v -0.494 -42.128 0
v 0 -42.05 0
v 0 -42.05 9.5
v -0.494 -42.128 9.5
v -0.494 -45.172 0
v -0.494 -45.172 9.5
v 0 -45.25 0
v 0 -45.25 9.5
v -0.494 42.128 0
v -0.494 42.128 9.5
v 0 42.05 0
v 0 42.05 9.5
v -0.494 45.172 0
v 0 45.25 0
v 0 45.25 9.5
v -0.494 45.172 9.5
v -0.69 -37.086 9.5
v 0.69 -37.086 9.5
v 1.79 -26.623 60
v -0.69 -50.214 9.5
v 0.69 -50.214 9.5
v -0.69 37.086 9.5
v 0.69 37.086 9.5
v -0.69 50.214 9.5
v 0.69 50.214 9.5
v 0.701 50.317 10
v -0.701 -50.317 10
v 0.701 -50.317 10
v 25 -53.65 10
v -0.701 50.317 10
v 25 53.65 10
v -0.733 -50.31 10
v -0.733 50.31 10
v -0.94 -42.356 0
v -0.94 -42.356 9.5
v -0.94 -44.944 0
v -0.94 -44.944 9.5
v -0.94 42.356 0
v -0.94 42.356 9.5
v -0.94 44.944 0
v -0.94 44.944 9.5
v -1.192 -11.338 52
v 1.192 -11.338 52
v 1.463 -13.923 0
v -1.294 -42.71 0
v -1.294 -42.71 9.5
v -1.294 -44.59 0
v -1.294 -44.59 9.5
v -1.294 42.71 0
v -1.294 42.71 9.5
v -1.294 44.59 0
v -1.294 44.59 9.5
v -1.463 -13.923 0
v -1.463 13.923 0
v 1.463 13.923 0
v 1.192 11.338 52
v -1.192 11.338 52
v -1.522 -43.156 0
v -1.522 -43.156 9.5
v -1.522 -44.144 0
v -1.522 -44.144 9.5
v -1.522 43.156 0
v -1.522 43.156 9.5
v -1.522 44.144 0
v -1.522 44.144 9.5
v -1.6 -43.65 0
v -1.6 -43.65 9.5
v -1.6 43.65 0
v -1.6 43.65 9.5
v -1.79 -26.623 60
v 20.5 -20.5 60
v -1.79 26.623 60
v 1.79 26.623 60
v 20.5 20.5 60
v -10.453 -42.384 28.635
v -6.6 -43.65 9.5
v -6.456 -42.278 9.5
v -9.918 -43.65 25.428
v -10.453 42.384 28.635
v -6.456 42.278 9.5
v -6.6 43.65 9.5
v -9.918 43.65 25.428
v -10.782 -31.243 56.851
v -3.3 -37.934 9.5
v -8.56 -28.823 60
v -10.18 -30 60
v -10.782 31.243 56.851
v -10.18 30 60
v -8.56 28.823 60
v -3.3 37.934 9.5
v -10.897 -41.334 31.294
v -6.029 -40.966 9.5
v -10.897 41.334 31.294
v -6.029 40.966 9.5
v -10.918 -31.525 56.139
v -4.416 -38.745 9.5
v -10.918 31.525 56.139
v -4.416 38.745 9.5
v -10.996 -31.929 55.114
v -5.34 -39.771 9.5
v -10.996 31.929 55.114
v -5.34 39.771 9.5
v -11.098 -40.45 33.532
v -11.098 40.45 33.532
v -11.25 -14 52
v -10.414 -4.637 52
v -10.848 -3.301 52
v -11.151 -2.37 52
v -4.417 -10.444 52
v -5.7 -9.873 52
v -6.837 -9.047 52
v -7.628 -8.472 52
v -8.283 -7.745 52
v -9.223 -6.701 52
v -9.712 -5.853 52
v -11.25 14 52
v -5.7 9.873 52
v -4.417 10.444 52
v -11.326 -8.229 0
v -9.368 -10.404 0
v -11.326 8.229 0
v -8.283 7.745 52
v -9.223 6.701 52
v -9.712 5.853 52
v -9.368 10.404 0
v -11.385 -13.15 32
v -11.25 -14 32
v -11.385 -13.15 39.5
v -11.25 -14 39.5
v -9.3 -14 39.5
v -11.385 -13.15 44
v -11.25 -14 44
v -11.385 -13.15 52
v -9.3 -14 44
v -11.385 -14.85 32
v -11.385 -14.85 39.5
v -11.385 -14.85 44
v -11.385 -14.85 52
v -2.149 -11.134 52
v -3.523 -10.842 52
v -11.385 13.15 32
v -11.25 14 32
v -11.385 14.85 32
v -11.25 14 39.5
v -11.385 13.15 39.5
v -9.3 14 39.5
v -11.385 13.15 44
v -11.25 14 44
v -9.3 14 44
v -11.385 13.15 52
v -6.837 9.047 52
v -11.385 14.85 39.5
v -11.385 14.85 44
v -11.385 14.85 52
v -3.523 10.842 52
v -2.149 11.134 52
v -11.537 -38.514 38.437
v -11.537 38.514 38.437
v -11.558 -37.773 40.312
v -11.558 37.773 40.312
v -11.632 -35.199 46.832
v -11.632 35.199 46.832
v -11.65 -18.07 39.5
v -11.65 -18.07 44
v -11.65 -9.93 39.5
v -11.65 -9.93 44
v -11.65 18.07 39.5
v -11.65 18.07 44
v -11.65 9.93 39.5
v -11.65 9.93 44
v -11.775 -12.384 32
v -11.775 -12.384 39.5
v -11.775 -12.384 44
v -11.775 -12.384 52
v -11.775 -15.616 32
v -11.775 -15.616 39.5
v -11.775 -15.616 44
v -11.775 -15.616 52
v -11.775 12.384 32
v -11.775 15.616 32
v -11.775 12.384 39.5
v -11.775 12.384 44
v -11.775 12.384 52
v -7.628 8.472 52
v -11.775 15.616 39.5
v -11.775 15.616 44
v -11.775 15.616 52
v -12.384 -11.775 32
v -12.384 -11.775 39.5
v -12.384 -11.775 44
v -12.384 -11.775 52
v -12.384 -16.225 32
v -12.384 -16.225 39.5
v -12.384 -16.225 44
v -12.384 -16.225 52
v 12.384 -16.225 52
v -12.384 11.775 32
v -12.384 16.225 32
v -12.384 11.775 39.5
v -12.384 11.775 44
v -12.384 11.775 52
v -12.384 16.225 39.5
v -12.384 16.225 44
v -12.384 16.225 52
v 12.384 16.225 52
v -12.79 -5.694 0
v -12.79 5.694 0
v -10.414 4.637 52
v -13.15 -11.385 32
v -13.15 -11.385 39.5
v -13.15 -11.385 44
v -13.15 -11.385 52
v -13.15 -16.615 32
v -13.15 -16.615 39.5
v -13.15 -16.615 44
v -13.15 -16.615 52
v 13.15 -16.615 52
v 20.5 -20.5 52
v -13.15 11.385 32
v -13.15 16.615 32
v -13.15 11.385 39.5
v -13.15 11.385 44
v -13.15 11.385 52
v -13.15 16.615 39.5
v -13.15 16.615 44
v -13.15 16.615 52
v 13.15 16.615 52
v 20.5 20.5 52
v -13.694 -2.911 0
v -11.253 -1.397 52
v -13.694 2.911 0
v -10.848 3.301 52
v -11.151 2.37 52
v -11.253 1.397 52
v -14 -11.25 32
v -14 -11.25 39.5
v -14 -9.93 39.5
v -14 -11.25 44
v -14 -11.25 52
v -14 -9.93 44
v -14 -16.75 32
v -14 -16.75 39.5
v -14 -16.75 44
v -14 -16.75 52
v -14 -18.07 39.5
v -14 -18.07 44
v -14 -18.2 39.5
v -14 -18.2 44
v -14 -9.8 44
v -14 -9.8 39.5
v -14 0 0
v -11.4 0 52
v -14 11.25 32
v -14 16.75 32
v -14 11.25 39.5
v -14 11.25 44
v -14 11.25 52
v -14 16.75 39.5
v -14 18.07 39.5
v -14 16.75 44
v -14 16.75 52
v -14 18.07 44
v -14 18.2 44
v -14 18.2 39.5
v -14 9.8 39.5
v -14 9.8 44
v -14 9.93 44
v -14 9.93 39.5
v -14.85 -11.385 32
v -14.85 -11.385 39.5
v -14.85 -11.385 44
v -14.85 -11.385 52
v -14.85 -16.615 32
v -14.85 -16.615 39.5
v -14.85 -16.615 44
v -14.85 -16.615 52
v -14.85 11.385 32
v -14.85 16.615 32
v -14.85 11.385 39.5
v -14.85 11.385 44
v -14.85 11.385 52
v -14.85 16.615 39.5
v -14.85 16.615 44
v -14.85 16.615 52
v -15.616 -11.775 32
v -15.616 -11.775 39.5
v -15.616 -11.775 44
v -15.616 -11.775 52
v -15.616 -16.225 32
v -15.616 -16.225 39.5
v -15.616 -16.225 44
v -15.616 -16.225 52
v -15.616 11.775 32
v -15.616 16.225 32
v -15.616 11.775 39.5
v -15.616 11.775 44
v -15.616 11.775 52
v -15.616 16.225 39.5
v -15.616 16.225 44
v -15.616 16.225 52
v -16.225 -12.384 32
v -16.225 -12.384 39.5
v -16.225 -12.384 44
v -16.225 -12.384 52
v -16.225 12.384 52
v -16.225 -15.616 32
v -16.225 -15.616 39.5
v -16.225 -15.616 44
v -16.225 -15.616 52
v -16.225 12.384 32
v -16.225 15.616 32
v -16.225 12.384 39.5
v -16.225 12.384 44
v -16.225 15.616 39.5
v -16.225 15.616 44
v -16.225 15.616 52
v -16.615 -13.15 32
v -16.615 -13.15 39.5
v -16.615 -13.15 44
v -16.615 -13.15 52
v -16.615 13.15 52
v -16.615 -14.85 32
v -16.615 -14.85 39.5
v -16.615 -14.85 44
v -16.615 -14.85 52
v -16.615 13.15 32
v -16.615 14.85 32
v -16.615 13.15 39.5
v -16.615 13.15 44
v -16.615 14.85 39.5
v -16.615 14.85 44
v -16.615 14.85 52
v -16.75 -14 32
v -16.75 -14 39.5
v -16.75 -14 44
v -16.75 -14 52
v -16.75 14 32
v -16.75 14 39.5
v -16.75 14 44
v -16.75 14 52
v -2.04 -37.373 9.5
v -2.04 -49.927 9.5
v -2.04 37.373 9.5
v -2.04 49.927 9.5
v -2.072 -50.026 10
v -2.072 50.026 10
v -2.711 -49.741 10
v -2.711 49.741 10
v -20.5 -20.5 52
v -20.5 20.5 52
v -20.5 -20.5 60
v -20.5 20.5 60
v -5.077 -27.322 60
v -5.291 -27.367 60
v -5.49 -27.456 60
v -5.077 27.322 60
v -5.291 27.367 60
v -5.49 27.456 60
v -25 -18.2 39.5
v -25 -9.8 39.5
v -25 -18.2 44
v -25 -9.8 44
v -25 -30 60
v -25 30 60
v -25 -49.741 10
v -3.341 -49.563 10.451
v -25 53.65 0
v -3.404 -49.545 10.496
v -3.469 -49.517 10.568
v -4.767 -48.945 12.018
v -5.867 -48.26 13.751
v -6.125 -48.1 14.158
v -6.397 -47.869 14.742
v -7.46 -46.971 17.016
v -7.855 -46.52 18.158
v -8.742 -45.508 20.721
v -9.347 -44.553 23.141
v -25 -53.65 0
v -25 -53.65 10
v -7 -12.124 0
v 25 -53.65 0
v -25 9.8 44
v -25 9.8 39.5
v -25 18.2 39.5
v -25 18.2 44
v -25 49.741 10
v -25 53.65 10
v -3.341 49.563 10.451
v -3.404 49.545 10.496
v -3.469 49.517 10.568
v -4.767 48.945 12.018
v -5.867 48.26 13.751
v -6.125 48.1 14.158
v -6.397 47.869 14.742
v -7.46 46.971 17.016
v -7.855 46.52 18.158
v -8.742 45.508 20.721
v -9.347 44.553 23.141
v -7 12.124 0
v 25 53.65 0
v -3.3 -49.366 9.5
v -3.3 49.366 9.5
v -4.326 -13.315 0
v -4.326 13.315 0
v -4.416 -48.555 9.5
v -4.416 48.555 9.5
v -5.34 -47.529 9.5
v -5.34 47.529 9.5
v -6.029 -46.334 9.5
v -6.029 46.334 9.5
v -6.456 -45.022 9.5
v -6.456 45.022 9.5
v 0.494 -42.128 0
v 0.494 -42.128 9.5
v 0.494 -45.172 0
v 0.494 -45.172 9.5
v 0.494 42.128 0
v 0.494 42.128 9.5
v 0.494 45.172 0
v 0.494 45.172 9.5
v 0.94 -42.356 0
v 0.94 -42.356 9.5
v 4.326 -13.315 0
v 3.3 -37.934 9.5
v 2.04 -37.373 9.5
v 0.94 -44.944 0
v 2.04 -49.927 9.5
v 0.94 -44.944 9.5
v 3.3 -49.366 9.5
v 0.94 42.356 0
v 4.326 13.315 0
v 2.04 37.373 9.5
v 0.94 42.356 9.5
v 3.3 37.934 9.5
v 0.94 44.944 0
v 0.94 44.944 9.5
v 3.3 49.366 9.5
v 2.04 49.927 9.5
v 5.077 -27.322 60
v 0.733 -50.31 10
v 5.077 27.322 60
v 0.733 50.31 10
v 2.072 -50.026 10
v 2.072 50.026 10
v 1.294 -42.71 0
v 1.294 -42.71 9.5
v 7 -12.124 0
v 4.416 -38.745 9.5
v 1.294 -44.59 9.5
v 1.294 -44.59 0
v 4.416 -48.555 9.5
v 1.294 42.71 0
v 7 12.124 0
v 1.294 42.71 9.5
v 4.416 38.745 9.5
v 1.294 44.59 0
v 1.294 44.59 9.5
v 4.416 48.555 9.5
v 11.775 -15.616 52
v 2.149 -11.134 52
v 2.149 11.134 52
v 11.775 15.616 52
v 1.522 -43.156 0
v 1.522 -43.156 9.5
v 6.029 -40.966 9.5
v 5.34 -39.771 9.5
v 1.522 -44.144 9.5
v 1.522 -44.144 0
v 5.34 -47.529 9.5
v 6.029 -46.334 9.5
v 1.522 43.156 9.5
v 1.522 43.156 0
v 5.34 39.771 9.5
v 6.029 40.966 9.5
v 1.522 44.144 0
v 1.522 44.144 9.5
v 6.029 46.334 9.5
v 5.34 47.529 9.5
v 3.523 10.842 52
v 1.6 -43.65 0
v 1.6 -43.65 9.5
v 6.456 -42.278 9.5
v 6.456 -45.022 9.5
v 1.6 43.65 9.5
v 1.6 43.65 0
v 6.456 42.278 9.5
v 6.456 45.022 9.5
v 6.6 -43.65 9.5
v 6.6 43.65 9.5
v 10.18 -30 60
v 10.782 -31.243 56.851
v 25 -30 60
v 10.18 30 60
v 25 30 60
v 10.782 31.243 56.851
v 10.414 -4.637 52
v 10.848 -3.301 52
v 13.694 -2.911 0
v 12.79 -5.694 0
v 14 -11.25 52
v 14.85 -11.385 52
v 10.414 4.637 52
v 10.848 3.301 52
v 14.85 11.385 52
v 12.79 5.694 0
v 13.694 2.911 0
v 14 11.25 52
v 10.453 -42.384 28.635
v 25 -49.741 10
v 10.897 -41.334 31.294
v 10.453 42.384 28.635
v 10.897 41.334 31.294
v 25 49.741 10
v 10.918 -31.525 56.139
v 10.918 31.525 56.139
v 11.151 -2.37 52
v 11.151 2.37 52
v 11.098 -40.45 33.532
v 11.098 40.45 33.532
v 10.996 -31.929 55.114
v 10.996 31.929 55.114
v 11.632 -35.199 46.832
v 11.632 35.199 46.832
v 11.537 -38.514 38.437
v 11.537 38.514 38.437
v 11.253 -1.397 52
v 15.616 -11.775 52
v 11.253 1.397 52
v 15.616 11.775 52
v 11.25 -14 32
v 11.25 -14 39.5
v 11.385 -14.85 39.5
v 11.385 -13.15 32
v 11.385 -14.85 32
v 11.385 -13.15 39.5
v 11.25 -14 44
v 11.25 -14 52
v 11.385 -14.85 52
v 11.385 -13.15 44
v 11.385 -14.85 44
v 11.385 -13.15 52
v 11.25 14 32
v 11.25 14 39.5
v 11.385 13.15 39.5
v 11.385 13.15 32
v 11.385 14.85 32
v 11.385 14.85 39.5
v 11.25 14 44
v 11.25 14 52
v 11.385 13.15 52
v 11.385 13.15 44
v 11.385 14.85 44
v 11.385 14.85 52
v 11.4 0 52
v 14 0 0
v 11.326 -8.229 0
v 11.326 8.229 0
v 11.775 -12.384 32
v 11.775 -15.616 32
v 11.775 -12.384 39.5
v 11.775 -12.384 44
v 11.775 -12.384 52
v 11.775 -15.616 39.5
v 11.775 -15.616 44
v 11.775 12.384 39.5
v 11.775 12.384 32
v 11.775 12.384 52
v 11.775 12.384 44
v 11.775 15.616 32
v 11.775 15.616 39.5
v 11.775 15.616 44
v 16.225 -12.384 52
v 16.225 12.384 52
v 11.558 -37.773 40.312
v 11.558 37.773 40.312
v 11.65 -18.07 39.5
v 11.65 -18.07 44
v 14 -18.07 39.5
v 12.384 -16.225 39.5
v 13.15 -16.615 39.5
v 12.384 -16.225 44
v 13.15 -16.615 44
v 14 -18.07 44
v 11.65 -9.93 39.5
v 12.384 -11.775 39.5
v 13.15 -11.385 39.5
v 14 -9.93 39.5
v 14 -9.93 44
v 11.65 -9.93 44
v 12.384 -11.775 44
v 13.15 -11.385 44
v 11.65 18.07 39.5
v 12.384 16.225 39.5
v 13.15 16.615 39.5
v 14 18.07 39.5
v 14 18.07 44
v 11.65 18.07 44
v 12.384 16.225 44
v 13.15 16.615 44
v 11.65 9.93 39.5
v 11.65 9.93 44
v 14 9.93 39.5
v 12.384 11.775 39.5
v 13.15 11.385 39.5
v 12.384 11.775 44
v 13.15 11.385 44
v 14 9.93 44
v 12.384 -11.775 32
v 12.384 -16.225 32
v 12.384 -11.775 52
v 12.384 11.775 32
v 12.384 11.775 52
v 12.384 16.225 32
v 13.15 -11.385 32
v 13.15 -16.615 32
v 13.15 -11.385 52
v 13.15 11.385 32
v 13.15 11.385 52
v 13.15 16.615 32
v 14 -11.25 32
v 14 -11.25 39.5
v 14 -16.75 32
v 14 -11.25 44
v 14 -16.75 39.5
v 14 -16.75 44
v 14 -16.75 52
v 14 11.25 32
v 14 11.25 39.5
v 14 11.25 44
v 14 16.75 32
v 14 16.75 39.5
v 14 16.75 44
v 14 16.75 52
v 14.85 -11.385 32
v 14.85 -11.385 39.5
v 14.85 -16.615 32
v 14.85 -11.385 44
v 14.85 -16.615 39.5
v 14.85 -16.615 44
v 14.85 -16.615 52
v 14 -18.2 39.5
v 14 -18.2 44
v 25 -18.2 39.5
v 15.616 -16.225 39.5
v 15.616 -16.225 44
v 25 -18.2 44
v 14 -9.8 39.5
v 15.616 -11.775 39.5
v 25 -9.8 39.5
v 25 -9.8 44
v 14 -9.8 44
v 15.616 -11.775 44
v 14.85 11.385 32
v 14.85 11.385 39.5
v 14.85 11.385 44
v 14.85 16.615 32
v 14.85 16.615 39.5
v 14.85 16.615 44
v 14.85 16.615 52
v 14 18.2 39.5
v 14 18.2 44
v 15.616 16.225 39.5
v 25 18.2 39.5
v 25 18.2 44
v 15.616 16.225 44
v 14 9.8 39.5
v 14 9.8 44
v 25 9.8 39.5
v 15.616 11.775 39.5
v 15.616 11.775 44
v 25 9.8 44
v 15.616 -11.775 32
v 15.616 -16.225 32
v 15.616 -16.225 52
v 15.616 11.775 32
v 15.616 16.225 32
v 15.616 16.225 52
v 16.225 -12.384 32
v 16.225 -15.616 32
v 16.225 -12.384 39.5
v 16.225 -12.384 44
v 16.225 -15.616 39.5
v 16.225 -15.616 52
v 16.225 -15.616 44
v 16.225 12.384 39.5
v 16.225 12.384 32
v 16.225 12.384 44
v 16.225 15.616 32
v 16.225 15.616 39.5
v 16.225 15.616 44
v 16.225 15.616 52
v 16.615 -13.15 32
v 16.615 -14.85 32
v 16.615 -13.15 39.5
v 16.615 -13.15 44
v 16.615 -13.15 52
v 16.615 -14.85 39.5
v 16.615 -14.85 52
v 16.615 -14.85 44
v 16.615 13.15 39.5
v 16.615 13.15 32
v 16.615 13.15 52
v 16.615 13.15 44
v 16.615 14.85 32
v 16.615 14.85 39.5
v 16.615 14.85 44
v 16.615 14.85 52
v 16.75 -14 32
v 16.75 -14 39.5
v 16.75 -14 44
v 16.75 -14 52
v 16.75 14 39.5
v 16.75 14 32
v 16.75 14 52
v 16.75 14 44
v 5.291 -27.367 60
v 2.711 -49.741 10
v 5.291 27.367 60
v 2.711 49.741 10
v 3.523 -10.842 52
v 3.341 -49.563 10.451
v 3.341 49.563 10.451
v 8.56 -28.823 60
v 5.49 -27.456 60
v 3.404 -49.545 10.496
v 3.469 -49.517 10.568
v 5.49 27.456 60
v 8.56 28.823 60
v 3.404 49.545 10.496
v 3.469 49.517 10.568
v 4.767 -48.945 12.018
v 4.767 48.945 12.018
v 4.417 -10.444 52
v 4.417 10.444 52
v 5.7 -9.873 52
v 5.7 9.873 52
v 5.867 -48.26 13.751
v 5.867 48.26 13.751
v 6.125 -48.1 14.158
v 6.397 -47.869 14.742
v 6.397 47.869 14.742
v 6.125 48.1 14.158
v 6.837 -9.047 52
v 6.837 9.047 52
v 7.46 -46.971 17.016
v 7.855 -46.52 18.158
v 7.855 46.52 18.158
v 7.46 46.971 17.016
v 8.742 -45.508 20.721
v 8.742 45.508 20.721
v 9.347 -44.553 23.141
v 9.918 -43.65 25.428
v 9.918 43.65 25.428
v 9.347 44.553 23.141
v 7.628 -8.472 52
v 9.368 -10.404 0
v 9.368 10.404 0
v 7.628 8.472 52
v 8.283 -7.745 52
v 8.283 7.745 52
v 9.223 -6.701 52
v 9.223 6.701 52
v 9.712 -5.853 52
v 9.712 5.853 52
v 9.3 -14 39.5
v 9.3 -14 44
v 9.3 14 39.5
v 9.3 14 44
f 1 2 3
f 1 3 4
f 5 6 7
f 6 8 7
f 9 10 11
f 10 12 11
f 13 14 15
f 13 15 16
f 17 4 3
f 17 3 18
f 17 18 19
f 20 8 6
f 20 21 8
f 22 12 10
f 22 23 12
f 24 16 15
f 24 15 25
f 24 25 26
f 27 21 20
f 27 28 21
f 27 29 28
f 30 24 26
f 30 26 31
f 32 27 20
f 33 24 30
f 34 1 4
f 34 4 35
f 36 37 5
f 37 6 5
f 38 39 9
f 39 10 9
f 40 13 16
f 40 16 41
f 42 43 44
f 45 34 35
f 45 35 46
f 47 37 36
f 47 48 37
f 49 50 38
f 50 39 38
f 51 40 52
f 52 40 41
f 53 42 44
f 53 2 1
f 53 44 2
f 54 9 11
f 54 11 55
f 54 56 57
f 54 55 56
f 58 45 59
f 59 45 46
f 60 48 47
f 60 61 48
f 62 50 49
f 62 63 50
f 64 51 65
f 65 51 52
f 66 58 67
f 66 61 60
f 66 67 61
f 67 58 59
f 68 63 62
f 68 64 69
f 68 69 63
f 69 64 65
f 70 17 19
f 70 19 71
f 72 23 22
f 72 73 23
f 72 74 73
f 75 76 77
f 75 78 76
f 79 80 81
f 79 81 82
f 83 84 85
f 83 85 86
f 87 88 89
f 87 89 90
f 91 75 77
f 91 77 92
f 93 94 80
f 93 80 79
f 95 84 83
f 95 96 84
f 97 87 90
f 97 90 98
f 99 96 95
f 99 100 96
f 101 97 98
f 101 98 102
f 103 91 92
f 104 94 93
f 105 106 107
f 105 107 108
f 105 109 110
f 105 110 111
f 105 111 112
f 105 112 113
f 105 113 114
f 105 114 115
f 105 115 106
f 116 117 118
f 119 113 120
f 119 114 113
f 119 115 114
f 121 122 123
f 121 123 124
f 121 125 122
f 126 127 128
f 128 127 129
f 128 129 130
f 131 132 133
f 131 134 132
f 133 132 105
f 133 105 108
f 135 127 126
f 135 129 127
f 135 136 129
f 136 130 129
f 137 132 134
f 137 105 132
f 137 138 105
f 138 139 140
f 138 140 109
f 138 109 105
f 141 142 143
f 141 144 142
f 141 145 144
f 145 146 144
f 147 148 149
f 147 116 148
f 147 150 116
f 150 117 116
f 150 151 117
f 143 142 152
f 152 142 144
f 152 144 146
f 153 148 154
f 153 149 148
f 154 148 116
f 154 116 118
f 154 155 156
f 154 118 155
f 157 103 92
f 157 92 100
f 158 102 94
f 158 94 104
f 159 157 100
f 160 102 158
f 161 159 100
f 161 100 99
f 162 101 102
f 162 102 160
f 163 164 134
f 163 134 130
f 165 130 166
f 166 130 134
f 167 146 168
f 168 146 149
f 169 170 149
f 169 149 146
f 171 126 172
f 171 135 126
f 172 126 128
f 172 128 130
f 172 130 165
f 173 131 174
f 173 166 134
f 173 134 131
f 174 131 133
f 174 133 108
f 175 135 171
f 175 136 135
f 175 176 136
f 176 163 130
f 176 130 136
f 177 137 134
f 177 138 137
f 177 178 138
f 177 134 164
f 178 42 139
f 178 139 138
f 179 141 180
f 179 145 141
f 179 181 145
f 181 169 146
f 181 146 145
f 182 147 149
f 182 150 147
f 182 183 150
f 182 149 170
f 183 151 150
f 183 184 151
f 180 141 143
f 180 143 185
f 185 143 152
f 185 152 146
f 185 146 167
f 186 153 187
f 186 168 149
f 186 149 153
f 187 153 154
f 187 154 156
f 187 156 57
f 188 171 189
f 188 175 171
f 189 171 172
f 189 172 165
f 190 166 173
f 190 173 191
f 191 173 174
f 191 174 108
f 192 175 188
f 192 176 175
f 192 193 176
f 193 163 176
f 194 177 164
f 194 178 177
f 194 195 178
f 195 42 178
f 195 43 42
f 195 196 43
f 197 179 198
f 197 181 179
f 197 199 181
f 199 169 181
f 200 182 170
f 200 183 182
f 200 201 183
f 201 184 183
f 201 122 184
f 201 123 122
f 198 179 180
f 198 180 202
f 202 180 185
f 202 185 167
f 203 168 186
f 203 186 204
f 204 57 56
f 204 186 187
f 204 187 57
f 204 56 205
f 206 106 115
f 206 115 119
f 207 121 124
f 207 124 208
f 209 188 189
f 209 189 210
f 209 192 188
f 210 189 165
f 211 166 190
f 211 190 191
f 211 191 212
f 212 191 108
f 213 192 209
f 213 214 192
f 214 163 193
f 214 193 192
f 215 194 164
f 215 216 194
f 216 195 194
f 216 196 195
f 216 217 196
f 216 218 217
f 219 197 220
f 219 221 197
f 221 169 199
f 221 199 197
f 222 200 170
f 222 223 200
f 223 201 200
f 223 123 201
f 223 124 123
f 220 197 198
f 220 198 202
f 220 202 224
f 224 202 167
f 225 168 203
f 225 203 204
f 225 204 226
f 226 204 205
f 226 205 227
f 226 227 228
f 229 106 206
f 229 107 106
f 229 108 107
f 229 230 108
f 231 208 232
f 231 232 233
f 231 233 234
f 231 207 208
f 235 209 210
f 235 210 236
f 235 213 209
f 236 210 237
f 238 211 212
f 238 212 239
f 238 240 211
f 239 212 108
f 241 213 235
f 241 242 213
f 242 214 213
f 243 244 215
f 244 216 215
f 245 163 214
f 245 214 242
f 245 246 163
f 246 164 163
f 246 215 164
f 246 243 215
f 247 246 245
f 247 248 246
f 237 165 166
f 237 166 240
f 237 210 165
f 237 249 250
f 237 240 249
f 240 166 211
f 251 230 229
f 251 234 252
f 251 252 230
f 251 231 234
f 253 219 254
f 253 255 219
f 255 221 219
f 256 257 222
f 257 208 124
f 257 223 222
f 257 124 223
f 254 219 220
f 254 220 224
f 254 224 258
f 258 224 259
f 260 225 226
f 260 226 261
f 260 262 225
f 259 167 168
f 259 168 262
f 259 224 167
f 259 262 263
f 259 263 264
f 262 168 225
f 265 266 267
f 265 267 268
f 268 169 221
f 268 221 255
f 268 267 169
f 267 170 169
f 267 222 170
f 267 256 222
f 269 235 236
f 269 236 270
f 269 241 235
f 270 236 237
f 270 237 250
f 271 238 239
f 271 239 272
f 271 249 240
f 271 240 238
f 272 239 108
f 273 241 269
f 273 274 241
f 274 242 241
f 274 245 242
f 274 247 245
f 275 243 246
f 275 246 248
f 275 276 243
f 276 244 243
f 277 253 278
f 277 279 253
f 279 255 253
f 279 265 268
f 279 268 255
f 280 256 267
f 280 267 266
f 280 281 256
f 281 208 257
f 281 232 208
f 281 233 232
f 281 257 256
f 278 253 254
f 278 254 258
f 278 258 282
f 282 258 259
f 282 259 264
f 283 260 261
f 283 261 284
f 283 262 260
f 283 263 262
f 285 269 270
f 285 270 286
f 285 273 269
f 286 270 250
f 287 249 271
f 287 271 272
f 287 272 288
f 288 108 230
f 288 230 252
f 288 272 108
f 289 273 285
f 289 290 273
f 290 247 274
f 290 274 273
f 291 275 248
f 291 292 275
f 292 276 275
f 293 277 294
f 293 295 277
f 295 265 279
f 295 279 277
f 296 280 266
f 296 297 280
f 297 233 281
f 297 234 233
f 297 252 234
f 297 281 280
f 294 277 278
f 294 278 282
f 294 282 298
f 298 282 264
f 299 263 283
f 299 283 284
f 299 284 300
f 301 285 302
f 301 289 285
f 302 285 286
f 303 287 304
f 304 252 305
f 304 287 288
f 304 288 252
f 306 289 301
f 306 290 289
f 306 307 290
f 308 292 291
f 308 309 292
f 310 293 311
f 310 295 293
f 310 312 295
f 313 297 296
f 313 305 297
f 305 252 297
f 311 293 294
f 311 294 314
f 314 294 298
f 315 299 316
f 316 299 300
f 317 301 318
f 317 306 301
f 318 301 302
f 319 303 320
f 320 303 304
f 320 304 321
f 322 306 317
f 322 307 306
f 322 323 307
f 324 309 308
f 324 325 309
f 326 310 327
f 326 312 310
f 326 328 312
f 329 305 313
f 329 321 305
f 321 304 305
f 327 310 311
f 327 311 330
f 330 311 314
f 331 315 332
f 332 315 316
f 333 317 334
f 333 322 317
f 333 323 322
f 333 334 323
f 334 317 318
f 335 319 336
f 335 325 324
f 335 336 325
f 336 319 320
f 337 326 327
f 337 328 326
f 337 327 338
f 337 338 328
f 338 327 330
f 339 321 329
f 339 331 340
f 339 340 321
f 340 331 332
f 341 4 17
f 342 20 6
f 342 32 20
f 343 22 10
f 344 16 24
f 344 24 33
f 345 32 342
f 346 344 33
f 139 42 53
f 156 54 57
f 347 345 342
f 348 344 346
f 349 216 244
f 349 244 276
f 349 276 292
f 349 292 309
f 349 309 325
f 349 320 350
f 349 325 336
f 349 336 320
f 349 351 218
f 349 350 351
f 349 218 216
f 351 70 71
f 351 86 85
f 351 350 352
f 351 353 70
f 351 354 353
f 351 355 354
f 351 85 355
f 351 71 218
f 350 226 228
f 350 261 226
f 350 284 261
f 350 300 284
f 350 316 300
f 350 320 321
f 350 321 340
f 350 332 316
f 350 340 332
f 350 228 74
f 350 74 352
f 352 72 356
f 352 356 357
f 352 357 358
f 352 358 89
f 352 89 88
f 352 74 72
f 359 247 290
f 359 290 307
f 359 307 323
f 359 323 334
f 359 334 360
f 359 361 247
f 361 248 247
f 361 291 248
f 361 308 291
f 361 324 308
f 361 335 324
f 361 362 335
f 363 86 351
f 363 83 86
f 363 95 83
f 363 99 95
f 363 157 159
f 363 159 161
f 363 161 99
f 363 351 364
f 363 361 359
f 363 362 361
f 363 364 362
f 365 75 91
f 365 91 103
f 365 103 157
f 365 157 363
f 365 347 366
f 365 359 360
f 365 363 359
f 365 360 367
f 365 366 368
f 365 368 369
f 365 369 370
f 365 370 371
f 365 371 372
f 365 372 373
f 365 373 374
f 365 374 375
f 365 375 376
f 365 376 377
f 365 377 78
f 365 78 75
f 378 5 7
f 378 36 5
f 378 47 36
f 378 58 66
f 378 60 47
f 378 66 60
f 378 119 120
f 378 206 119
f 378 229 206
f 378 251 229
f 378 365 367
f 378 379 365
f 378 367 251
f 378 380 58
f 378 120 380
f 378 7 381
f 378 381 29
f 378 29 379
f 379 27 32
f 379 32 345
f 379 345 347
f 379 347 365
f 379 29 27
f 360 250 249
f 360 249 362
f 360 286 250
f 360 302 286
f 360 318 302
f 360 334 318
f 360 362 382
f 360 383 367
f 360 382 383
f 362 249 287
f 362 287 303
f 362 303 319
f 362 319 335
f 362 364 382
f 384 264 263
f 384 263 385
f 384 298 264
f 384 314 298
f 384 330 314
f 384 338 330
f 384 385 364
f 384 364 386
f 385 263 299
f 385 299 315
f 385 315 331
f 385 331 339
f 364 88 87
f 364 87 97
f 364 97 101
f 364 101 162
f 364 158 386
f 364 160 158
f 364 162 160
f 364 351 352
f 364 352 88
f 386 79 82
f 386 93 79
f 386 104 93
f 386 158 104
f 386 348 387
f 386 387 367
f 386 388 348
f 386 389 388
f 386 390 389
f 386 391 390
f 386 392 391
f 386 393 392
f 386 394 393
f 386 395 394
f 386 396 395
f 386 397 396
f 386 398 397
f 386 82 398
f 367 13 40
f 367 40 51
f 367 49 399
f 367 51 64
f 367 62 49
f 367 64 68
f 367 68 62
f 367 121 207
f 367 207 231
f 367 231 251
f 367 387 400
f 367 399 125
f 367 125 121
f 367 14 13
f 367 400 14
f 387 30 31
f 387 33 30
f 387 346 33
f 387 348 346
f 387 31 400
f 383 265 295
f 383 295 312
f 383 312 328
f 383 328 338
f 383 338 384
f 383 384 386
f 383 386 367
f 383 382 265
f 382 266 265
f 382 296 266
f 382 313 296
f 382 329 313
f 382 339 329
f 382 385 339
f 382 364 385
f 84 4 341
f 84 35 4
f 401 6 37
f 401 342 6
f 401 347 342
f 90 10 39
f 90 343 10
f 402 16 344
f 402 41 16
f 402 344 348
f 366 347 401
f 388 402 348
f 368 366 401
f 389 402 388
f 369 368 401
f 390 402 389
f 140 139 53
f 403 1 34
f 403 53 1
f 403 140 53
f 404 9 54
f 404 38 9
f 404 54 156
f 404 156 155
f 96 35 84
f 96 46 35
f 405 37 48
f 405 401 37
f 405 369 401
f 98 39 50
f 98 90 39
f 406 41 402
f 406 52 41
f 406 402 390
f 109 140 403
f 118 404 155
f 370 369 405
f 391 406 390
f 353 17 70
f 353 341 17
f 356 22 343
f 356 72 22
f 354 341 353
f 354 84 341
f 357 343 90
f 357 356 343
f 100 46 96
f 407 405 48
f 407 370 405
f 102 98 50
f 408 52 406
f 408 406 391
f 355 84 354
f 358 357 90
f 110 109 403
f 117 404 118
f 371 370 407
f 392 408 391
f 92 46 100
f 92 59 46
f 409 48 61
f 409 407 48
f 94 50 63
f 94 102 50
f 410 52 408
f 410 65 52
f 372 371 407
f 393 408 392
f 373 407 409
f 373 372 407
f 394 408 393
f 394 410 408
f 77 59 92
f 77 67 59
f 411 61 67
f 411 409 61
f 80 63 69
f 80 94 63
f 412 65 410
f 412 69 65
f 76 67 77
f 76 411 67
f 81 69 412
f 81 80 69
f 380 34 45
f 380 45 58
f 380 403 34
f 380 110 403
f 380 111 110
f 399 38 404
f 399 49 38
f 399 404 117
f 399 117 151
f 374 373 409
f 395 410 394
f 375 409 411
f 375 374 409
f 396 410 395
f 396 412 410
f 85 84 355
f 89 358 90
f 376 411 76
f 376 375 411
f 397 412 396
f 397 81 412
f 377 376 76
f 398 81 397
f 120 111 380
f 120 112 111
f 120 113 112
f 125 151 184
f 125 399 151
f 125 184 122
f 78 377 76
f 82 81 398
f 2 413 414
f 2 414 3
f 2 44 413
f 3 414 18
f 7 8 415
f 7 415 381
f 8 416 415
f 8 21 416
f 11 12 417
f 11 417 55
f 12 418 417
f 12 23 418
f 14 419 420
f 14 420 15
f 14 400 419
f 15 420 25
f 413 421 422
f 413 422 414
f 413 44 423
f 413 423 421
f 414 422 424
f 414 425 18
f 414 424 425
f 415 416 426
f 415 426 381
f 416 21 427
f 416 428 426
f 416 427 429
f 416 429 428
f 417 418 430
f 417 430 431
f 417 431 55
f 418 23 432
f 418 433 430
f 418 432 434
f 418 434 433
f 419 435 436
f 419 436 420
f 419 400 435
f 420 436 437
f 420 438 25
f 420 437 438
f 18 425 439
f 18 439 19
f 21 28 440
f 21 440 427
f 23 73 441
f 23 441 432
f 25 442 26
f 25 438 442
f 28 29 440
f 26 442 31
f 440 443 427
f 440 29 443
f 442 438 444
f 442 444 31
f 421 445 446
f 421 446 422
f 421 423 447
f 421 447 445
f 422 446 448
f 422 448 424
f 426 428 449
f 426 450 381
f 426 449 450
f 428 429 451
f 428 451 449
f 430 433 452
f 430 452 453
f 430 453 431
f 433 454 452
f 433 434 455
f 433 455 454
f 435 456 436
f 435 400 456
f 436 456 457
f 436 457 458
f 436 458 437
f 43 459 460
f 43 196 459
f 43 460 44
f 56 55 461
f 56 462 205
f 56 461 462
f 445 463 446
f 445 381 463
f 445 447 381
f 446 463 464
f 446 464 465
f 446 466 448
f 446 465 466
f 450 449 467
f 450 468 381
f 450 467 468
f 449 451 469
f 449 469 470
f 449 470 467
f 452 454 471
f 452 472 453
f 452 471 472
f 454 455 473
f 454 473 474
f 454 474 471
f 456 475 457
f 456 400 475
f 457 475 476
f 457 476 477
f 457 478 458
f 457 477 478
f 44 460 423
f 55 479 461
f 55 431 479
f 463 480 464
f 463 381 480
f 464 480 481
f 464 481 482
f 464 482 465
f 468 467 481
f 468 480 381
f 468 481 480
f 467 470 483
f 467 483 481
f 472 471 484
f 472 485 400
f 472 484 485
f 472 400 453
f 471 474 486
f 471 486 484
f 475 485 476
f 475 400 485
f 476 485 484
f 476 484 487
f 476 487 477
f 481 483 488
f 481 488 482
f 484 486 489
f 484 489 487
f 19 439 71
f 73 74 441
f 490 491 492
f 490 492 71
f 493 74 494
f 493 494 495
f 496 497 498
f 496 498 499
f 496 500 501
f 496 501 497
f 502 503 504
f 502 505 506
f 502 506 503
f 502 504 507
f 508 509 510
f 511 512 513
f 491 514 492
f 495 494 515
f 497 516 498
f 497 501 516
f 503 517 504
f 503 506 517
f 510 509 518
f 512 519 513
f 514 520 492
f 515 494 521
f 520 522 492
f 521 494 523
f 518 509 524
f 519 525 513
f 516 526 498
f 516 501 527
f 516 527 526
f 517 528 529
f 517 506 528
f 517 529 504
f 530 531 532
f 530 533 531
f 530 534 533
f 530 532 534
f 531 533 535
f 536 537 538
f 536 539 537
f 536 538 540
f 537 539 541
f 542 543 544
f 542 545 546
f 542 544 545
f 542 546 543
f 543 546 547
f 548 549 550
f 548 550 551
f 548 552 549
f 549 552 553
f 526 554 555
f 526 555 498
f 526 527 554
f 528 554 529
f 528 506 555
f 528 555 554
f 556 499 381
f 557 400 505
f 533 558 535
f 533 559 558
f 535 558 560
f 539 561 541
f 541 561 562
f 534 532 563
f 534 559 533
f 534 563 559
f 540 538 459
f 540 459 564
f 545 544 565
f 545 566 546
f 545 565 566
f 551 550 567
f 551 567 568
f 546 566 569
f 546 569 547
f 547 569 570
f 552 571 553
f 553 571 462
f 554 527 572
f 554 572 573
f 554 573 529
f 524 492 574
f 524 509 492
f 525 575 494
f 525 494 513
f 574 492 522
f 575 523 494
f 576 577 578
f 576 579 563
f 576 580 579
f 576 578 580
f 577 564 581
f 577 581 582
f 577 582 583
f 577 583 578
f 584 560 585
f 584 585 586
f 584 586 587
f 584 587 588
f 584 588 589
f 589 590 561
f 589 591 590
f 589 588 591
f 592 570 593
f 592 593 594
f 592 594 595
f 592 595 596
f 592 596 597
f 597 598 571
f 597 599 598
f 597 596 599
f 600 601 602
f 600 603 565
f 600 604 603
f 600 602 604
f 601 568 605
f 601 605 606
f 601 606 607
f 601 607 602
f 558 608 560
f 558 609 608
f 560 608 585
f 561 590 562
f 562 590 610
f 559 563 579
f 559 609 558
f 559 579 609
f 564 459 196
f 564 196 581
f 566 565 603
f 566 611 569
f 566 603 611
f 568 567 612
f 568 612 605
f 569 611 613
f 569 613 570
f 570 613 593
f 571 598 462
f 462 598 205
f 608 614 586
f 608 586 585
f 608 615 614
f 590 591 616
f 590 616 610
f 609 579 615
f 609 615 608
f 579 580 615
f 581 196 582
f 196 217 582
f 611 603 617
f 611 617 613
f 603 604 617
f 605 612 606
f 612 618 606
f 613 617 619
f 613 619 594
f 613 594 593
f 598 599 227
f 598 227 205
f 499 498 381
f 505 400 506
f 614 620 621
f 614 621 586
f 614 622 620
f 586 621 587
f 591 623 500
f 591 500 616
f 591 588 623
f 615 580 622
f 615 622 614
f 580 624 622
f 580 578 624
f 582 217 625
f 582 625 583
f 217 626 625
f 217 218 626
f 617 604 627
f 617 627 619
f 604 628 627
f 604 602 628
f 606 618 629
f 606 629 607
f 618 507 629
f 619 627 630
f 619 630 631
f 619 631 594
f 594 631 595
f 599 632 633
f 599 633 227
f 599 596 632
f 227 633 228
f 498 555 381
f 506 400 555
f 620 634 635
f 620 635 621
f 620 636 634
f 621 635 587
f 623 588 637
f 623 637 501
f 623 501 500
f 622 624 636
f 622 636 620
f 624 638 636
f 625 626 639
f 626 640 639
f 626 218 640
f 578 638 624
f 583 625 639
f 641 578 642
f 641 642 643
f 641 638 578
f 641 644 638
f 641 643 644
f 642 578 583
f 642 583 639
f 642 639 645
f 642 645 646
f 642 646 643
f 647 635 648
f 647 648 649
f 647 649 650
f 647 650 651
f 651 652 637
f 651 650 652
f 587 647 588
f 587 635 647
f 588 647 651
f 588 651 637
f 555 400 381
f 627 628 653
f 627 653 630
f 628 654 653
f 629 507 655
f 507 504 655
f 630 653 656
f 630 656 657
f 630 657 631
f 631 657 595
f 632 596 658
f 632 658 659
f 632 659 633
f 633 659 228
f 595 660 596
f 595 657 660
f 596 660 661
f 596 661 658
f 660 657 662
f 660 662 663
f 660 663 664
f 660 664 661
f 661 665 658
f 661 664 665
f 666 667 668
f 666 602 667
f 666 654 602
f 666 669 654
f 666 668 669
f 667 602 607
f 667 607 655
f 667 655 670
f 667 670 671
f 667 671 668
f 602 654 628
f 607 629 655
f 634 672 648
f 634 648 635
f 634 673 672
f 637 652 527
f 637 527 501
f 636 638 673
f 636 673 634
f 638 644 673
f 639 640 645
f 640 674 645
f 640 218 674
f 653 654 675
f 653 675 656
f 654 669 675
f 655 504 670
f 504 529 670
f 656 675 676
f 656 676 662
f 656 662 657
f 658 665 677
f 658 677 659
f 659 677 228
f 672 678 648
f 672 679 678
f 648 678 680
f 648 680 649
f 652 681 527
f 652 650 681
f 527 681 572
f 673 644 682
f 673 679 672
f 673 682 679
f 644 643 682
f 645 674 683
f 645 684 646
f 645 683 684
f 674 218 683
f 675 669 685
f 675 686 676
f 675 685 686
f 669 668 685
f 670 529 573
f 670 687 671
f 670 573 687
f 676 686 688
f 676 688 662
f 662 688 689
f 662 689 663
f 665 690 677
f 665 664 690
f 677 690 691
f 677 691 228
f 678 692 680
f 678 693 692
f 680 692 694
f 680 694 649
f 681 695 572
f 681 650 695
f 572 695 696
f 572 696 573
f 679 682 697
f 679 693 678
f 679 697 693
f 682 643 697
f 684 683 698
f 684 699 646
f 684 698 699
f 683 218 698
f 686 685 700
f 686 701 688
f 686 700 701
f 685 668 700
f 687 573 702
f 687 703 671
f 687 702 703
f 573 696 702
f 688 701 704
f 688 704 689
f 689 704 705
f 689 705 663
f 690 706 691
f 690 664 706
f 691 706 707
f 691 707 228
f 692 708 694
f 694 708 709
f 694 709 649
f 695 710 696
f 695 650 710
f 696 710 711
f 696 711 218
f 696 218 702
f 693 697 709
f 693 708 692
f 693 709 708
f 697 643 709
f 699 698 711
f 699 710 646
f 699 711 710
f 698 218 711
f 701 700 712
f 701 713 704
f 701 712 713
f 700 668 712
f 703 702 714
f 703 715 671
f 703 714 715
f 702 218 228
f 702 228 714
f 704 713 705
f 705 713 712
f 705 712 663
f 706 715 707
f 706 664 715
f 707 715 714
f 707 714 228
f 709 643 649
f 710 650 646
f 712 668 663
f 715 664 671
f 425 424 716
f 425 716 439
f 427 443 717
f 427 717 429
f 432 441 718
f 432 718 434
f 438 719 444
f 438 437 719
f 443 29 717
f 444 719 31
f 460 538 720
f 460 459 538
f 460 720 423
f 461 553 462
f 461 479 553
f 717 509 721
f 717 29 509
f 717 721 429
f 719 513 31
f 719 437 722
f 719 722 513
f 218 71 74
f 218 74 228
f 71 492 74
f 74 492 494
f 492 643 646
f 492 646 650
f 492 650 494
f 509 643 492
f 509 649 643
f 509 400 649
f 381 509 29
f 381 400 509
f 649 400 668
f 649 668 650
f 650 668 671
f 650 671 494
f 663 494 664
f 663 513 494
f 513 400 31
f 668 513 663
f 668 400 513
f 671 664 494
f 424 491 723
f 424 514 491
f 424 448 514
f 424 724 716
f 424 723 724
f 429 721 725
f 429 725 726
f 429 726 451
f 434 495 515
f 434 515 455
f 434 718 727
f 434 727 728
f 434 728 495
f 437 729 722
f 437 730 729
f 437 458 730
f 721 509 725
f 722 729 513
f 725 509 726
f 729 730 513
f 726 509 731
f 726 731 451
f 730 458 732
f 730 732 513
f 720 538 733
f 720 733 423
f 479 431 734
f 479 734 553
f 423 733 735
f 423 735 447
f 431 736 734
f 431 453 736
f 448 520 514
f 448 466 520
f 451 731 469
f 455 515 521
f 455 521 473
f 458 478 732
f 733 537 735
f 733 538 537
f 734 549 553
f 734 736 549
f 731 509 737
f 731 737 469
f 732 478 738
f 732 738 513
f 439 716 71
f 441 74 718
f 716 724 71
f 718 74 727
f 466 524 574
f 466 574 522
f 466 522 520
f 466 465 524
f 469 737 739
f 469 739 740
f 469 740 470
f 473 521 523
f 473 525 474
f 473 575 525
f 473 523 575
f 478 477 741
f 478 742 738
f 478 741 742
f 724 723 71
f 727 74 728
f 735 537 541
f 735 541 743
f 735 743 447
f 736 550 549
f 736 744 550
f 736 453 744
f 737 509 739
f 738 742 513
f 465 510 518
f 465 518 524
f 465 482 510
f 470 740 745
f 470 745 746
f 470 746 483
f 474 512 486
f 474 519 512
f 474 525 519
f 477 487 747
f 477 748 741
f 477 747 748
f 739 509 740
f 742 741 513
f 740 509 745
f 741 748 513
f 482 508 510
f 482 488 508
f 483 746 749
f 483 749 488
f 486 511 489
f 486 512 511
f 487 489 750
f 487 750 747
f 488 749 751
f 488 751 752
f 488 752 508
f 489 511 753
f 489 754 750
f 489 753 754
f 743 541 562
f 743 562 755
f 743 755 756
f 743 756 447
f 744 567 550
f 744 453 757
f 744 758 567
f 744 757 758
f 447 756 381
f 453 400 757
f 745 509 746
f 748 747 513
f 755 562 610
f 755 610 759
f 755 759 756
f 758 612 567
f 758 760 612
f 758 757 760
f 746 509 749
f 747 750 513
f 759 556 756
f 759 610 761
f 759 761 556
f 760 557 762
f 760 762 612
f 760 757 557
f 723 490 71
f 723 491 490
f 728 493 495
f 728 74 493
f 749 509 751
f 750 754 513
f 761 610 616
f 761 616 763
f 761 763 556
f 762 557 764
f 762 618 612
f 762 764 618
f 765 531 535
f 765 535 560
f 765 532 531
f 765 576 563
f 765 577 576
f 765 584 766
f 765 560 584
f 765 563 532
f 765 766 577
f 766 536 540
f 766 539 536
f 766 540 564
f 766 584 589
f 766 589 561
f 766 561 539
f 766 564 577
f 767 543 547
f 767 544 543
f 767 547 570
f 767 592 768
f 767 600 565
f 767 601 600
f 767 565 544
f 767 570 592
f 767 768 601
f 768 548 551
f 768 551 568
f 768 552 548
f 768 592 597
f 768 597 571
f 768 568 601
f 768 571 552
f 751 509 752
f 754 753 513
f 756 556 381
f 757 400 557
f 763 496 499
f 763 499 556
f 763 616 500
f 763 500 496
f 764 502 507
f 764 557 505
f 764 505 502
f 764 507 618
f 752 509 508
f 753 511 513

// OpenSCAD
include <../parameters.scad>

module 888_2008(draft = true){

    screw_length = 30;

    thickness = 50;
    width = height_of_accumulator*2 + 20;
    top_width = 60;
    height = 60;
    base_height = 10;

    screw_distance = 100;

    echo(str("desticka = ", main_tube_outer_diameter + thickness_between_tubes + coupling_wall_thickness ));

    difference(){
        union(){

            translate([-thickness/2, -width/2, 0])
                cube([thickness, width, base_height]);

            hull(){
                translate([-thickness/2, -width/2, 0])
                    cube([thickness, width, 0.1]);
                translate([-thickness/2, -top_width/2, 0])
                    cube([thickness, top_width, height]);
            }
        }

        for (i=[1,-1]) {
            translate([0, i*height_of_accumulator, 0])
                cylinder(d = M3_screw_diameter, h=base_height, $fn=20);
            translate([0, i*height_of_accumulator, base_height-global_clearance])
                cylinder(d1 = M3_screw_diameter+10, d2 = M3_screw_diameter+35, h=height);
        }

        // dira uprostred skrz
        translate([0, 0, 0])
            cylinder(d1=bearing_efsm_08_db+10, d2=bearing_efsm_08_db, h=100);

        // kostka pro EFSM
        translate([0,0,height-20 - bearing_efsm_08_B]){
            translate([-bearing_efsm_12_h/2, -bearing_efsm_12_h/2, 20])
                cube([bearing_efsm_12_h, bearing_efsm_12_h, 30]);

        // diry pro prisroubovani EFSM
            for (p=[[bearing_efsm_12_m/2, bearing_efsm_12_m/2, 0], [bearing_efsm_12_m/2, -bearing_efsm_12_m/2, 0], [-bearing_efsm_12_m/2, bearing_efsm_12_m/2, 0], [-bearing_efsm_12_m/2, -bearing_efsm_12_m/2, 0]]) {
                translate(p)
                    cylinder(d=5.5, h=100, $fn=20);
            }


            for (p=[[bearing_efsm_12_m/2, bearing_efsm_12_m/2, 180], [bearing_efsm_12_m/2, -bearing_efsm_12_m/2, 180], [-bearing_efsm_12_m/2, bearing_efsm_12_m/2, 0], [-bearing_efsm_12_m/2, -bearing_efsm_12_m/2, 0]]) {
                translate([p[0], p[1], height - 20 - bearing_efsm_08_B - 20 - M5_nut_height]){
                    rotate([0, 0, p[2]])
                        cylinder(d=M5_nut_diameter, h= M5_nut_height, $fn=6);
                    rotate([0, 0, p[2]+90])
                        translate([-M5_nut_pocket/2, 0, 0])
                            cube([M5_nut_pocket, 100, M5_nut_height]);
                    }
            }


        }
    }
}

888_2008();
